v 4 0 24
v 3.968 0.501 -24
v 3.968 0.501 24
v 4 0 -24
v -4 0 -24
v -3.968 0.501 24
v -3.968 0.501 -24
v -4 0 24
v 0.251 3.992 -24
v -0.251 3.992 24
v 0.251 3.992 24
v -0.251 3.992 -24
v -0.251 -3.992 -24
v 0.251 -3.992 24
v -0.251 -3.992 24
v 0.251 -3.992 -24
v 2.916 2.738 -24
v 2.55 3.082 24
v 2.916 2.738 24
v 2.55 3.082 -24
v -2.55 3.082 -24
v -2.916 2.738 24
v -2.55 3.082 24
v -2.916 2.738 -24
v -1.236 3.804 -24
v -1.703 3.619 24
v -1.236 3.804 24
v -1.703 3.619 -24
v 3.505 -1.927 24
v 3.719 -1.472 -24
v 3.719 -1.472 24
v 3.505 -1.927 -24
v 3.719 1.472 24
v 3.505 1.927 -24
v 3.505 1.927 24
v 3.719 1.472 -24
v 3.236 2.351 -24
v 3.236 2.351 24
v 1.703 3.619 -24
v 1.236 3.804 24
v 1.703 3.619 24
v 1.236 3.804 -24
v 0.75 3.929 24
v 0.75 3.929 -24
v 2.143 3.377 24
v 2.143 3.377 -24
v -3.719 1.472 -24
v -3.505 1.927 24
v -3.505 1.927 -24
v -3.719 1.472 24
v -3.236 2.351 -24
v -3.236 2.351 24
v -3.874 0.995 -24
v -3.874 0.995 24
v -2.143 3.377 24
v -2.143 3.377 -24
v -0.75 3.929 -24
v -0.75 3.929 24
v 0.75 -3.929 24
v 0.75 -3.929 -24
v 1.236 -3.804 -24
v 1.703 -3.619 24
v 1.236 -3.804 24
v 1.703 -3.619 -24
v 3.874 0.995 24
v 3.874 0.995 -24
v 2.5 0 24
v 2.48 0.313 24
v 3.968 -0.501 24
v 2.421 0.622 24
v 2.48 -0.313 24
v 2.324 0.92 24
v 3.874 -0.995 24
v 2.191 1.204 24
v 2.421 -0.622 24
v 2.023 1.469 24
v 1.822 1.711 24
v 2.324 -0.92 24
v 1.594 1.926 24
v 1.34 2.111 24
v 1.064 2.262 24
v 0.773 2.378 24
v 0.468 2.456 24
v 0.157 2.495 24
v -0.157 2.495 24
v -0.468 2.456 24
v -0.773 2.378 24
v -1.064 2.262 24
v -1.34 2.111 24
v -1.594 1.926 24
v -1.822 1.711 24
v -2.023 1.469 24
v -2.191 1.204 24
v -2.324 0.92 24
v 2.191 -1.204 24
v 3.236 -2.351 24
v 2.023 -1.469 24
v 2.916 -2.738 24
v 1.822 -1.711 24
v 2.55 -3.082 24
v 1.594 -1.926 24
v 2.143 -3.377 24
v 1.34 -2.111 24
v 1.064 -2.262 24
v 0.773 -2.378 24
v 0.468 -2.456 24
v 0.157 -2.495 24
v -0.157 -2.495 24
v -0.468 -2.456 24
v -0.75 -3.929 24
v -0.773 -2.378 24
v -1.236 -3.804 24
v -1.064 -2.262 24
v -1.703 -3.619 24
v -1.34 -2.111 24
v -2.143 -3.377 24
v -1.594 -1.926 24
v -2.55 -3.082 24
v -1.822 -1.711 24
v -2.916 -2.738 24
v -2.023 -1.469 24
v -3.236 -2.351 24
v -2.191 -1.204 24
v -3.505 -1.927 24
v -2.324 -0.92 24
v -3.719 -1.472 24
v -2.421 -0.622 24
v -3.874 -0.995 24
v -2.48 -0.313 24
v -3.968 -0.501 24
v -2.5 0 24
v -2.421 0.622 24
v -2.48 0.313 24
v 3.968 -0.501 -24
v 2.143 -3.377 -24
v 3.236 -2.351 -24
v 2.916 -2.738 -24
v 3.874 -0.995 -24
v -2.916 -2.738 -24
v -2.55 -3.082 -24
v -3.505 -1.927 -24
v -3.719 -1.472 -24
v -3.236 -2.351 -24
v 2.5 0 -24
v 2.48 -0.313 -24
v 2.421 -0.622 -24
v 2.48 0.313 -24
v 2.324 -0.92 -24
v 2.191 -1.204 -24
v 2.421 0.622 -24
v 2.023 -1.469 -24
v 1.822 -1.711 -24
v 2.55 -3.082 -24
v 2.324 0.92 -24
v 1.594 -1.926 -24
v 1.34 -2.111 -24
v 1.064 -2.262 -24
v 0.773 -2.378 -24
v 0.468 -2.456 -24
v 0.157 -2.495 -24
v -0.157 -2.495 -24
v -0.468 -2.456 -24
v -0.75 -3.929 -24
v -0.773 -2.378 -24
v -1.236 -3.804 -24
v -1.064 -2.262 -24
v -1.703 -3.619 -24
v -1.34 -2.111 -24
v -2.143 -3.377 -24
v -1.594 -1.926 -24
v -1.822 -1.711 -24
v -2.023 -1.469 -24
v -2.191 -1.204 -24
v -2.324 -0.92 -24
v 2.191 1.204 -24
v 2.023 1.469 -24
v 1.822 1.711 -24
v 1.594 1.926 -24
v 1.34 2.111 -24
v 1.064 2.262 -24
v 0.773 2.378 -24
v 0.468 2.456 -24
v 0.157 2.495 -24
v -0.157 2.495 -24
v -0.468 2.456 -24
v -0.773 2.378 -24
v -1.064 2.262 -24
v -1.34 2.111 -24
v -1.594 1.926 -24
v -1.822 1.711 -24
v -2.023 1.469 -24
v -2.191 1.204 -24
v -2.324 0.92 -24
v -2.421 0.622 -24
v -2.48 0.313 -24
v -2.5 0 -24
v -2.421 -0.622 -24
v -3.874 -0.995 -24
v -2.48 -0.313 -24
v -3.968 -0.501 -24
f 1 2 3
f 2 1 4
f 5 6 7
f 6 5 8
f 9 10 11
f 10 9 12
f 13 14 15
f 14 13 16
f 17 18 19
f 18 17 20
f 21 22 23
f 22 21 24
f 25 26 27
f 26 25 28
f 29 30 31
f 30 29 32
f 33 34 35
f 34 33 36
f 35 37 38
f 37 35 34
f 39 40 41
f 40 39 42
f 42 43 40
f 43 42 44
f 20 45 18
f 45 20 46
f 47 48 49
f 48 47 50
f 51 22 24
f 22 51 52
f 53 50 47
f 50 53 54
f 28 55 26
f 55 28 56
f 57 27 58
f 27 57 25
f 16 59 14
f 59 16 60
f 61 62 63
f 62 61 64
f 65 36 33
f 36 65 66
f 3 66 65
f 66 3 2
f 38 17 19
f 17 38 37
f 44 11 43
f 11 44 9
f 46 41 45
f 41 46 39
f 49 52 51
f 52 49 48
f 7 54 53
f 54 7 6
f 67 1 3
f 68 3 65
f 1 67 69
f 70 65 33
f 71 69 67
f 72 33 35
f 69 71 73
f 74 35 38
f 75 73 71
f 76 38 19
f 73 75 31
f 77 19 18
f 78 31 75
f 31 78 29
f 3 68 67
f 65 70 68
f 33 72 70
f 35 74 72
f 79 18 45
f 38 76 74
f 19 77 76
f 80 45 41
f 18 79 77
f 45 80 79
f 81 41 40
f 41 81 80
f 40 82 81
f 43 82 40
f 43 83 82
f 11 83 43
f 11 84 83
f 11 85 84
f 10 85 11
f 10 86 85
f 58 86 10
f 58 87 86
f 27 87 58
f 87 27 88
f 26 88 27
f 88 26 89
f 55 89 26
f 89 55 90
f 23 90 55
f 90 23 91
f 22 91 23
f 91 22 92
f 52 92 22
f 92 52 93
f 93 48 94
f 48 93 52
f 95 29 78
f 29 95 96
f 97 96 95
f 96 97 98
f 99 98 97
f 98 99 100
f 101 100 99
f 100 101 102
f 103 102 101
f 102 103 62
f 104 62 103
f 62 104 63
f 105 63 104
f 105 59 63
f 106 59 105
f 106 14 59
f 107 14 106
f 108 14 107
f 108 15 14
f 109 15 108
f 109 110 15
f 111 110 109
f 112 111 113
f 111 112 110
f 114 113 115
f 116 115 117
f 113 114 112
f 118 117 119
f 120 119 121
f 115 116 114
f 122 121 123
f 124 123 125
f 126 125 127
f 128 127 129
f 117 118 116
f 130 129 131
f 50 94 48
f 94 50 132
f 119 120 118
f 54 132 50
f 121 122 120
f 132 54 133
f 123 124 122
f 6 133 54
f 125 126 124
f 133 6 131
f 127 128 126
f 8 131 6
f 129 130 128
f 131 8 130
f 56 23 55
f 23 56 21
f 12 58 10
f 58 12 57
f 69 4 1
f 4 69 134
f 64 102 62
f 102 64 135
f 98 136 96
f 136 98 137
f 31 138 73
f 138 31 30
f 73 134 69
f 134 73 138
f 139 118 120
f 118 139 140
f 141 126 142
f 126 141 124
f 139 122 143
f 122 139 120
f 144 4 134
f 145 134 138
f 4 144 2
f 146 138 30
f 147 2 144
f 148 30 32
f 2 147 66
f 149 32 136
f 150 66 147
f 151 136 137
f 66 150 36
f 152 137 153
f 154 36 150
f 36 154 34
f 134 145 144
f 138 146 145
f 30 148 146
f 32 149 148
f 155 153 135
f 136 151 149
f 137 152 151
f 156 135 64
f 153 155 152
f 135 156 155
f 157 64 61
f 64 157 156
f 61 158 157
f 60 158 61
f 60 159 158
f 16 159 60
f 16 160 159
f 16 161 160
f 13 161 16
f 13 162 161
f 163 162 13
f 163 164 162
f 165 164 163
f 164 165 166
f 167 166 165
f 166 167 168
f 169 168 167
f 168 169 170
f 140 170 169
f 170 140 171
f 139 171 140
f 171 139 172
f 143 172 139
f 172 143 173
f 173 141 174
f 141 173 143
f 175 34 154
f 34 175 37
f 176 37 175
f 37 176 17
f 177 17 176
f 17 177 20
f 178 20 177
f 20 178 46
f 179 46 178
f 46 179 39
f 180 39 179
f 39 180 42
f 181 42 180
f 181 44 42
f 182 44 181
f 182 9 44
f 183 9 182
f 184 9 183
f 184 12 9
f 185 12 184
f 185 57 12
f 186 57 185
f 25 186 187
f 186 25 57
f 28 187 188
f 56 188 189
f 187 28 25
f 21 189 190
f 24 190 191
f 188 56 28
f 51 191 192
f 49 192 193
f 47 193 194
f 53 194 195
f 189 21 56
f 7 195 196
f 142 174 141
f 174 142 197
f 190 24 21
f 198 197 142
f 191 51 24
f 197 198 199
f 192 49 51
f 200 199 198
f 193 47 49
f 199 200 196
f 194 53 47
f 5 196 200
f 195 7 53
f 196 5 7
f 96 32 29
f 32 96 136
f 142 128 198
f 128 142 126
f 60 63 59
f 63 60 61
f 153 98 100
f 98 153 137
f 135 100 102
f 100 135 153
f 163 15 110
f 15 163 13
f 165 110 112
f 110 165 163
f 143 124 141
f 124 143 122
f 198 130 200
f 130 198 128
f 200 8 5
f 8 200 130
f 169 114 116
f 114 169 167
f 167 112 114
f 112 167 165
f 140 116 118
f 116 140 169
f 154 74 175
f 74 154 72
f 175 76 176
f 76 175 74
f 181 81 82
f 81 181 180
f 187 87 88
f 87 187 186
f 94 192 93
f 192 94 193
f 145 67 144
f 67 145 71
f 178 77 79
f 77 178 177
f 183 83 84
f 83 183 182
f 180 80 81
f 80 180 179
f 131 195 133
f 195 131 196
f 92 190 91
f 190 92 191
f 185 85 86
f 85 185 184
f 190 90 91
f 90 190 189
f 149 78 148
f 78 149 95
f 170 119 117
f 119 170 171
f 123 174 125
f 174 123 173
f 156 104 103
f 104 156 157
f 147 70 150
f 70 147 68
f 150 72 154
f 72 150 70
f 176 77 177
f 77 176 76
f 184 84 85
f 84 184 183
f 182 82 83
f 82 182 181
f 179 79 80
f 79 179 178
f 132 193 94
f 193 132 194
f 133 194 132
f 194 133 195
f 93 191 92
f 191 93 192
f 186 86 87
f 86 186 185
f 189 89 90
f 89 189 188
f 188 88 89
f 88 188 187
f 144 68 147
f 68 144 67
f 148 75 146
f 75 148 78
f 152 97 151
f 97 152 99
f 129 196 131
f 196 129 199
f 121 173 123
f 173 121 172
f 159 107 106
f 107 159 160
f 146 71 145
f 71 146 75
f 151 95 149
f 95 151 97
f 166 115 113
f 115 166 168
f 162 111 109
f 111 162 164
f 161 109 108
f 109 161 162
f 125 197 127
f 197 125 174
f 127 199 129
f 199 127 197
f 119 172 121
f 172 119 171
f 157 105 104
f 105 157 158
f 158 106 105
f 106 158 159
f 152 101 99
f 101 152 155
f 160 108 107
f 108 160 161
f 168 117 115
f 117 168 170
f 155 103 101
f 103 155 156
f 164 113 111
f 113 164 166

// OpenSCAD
$fn = 50;


difference() {
	union() {
		translate(v = [0, 0, -24.0000000000]) {
			cylinder(h = 48, r = 4.0000000000);
		}
	}
	union() {
		translate(v = [0, 0, -100.0000000000]) {
			cylinder(h = 200, r = 2.5000000000);
		}
	}
}
